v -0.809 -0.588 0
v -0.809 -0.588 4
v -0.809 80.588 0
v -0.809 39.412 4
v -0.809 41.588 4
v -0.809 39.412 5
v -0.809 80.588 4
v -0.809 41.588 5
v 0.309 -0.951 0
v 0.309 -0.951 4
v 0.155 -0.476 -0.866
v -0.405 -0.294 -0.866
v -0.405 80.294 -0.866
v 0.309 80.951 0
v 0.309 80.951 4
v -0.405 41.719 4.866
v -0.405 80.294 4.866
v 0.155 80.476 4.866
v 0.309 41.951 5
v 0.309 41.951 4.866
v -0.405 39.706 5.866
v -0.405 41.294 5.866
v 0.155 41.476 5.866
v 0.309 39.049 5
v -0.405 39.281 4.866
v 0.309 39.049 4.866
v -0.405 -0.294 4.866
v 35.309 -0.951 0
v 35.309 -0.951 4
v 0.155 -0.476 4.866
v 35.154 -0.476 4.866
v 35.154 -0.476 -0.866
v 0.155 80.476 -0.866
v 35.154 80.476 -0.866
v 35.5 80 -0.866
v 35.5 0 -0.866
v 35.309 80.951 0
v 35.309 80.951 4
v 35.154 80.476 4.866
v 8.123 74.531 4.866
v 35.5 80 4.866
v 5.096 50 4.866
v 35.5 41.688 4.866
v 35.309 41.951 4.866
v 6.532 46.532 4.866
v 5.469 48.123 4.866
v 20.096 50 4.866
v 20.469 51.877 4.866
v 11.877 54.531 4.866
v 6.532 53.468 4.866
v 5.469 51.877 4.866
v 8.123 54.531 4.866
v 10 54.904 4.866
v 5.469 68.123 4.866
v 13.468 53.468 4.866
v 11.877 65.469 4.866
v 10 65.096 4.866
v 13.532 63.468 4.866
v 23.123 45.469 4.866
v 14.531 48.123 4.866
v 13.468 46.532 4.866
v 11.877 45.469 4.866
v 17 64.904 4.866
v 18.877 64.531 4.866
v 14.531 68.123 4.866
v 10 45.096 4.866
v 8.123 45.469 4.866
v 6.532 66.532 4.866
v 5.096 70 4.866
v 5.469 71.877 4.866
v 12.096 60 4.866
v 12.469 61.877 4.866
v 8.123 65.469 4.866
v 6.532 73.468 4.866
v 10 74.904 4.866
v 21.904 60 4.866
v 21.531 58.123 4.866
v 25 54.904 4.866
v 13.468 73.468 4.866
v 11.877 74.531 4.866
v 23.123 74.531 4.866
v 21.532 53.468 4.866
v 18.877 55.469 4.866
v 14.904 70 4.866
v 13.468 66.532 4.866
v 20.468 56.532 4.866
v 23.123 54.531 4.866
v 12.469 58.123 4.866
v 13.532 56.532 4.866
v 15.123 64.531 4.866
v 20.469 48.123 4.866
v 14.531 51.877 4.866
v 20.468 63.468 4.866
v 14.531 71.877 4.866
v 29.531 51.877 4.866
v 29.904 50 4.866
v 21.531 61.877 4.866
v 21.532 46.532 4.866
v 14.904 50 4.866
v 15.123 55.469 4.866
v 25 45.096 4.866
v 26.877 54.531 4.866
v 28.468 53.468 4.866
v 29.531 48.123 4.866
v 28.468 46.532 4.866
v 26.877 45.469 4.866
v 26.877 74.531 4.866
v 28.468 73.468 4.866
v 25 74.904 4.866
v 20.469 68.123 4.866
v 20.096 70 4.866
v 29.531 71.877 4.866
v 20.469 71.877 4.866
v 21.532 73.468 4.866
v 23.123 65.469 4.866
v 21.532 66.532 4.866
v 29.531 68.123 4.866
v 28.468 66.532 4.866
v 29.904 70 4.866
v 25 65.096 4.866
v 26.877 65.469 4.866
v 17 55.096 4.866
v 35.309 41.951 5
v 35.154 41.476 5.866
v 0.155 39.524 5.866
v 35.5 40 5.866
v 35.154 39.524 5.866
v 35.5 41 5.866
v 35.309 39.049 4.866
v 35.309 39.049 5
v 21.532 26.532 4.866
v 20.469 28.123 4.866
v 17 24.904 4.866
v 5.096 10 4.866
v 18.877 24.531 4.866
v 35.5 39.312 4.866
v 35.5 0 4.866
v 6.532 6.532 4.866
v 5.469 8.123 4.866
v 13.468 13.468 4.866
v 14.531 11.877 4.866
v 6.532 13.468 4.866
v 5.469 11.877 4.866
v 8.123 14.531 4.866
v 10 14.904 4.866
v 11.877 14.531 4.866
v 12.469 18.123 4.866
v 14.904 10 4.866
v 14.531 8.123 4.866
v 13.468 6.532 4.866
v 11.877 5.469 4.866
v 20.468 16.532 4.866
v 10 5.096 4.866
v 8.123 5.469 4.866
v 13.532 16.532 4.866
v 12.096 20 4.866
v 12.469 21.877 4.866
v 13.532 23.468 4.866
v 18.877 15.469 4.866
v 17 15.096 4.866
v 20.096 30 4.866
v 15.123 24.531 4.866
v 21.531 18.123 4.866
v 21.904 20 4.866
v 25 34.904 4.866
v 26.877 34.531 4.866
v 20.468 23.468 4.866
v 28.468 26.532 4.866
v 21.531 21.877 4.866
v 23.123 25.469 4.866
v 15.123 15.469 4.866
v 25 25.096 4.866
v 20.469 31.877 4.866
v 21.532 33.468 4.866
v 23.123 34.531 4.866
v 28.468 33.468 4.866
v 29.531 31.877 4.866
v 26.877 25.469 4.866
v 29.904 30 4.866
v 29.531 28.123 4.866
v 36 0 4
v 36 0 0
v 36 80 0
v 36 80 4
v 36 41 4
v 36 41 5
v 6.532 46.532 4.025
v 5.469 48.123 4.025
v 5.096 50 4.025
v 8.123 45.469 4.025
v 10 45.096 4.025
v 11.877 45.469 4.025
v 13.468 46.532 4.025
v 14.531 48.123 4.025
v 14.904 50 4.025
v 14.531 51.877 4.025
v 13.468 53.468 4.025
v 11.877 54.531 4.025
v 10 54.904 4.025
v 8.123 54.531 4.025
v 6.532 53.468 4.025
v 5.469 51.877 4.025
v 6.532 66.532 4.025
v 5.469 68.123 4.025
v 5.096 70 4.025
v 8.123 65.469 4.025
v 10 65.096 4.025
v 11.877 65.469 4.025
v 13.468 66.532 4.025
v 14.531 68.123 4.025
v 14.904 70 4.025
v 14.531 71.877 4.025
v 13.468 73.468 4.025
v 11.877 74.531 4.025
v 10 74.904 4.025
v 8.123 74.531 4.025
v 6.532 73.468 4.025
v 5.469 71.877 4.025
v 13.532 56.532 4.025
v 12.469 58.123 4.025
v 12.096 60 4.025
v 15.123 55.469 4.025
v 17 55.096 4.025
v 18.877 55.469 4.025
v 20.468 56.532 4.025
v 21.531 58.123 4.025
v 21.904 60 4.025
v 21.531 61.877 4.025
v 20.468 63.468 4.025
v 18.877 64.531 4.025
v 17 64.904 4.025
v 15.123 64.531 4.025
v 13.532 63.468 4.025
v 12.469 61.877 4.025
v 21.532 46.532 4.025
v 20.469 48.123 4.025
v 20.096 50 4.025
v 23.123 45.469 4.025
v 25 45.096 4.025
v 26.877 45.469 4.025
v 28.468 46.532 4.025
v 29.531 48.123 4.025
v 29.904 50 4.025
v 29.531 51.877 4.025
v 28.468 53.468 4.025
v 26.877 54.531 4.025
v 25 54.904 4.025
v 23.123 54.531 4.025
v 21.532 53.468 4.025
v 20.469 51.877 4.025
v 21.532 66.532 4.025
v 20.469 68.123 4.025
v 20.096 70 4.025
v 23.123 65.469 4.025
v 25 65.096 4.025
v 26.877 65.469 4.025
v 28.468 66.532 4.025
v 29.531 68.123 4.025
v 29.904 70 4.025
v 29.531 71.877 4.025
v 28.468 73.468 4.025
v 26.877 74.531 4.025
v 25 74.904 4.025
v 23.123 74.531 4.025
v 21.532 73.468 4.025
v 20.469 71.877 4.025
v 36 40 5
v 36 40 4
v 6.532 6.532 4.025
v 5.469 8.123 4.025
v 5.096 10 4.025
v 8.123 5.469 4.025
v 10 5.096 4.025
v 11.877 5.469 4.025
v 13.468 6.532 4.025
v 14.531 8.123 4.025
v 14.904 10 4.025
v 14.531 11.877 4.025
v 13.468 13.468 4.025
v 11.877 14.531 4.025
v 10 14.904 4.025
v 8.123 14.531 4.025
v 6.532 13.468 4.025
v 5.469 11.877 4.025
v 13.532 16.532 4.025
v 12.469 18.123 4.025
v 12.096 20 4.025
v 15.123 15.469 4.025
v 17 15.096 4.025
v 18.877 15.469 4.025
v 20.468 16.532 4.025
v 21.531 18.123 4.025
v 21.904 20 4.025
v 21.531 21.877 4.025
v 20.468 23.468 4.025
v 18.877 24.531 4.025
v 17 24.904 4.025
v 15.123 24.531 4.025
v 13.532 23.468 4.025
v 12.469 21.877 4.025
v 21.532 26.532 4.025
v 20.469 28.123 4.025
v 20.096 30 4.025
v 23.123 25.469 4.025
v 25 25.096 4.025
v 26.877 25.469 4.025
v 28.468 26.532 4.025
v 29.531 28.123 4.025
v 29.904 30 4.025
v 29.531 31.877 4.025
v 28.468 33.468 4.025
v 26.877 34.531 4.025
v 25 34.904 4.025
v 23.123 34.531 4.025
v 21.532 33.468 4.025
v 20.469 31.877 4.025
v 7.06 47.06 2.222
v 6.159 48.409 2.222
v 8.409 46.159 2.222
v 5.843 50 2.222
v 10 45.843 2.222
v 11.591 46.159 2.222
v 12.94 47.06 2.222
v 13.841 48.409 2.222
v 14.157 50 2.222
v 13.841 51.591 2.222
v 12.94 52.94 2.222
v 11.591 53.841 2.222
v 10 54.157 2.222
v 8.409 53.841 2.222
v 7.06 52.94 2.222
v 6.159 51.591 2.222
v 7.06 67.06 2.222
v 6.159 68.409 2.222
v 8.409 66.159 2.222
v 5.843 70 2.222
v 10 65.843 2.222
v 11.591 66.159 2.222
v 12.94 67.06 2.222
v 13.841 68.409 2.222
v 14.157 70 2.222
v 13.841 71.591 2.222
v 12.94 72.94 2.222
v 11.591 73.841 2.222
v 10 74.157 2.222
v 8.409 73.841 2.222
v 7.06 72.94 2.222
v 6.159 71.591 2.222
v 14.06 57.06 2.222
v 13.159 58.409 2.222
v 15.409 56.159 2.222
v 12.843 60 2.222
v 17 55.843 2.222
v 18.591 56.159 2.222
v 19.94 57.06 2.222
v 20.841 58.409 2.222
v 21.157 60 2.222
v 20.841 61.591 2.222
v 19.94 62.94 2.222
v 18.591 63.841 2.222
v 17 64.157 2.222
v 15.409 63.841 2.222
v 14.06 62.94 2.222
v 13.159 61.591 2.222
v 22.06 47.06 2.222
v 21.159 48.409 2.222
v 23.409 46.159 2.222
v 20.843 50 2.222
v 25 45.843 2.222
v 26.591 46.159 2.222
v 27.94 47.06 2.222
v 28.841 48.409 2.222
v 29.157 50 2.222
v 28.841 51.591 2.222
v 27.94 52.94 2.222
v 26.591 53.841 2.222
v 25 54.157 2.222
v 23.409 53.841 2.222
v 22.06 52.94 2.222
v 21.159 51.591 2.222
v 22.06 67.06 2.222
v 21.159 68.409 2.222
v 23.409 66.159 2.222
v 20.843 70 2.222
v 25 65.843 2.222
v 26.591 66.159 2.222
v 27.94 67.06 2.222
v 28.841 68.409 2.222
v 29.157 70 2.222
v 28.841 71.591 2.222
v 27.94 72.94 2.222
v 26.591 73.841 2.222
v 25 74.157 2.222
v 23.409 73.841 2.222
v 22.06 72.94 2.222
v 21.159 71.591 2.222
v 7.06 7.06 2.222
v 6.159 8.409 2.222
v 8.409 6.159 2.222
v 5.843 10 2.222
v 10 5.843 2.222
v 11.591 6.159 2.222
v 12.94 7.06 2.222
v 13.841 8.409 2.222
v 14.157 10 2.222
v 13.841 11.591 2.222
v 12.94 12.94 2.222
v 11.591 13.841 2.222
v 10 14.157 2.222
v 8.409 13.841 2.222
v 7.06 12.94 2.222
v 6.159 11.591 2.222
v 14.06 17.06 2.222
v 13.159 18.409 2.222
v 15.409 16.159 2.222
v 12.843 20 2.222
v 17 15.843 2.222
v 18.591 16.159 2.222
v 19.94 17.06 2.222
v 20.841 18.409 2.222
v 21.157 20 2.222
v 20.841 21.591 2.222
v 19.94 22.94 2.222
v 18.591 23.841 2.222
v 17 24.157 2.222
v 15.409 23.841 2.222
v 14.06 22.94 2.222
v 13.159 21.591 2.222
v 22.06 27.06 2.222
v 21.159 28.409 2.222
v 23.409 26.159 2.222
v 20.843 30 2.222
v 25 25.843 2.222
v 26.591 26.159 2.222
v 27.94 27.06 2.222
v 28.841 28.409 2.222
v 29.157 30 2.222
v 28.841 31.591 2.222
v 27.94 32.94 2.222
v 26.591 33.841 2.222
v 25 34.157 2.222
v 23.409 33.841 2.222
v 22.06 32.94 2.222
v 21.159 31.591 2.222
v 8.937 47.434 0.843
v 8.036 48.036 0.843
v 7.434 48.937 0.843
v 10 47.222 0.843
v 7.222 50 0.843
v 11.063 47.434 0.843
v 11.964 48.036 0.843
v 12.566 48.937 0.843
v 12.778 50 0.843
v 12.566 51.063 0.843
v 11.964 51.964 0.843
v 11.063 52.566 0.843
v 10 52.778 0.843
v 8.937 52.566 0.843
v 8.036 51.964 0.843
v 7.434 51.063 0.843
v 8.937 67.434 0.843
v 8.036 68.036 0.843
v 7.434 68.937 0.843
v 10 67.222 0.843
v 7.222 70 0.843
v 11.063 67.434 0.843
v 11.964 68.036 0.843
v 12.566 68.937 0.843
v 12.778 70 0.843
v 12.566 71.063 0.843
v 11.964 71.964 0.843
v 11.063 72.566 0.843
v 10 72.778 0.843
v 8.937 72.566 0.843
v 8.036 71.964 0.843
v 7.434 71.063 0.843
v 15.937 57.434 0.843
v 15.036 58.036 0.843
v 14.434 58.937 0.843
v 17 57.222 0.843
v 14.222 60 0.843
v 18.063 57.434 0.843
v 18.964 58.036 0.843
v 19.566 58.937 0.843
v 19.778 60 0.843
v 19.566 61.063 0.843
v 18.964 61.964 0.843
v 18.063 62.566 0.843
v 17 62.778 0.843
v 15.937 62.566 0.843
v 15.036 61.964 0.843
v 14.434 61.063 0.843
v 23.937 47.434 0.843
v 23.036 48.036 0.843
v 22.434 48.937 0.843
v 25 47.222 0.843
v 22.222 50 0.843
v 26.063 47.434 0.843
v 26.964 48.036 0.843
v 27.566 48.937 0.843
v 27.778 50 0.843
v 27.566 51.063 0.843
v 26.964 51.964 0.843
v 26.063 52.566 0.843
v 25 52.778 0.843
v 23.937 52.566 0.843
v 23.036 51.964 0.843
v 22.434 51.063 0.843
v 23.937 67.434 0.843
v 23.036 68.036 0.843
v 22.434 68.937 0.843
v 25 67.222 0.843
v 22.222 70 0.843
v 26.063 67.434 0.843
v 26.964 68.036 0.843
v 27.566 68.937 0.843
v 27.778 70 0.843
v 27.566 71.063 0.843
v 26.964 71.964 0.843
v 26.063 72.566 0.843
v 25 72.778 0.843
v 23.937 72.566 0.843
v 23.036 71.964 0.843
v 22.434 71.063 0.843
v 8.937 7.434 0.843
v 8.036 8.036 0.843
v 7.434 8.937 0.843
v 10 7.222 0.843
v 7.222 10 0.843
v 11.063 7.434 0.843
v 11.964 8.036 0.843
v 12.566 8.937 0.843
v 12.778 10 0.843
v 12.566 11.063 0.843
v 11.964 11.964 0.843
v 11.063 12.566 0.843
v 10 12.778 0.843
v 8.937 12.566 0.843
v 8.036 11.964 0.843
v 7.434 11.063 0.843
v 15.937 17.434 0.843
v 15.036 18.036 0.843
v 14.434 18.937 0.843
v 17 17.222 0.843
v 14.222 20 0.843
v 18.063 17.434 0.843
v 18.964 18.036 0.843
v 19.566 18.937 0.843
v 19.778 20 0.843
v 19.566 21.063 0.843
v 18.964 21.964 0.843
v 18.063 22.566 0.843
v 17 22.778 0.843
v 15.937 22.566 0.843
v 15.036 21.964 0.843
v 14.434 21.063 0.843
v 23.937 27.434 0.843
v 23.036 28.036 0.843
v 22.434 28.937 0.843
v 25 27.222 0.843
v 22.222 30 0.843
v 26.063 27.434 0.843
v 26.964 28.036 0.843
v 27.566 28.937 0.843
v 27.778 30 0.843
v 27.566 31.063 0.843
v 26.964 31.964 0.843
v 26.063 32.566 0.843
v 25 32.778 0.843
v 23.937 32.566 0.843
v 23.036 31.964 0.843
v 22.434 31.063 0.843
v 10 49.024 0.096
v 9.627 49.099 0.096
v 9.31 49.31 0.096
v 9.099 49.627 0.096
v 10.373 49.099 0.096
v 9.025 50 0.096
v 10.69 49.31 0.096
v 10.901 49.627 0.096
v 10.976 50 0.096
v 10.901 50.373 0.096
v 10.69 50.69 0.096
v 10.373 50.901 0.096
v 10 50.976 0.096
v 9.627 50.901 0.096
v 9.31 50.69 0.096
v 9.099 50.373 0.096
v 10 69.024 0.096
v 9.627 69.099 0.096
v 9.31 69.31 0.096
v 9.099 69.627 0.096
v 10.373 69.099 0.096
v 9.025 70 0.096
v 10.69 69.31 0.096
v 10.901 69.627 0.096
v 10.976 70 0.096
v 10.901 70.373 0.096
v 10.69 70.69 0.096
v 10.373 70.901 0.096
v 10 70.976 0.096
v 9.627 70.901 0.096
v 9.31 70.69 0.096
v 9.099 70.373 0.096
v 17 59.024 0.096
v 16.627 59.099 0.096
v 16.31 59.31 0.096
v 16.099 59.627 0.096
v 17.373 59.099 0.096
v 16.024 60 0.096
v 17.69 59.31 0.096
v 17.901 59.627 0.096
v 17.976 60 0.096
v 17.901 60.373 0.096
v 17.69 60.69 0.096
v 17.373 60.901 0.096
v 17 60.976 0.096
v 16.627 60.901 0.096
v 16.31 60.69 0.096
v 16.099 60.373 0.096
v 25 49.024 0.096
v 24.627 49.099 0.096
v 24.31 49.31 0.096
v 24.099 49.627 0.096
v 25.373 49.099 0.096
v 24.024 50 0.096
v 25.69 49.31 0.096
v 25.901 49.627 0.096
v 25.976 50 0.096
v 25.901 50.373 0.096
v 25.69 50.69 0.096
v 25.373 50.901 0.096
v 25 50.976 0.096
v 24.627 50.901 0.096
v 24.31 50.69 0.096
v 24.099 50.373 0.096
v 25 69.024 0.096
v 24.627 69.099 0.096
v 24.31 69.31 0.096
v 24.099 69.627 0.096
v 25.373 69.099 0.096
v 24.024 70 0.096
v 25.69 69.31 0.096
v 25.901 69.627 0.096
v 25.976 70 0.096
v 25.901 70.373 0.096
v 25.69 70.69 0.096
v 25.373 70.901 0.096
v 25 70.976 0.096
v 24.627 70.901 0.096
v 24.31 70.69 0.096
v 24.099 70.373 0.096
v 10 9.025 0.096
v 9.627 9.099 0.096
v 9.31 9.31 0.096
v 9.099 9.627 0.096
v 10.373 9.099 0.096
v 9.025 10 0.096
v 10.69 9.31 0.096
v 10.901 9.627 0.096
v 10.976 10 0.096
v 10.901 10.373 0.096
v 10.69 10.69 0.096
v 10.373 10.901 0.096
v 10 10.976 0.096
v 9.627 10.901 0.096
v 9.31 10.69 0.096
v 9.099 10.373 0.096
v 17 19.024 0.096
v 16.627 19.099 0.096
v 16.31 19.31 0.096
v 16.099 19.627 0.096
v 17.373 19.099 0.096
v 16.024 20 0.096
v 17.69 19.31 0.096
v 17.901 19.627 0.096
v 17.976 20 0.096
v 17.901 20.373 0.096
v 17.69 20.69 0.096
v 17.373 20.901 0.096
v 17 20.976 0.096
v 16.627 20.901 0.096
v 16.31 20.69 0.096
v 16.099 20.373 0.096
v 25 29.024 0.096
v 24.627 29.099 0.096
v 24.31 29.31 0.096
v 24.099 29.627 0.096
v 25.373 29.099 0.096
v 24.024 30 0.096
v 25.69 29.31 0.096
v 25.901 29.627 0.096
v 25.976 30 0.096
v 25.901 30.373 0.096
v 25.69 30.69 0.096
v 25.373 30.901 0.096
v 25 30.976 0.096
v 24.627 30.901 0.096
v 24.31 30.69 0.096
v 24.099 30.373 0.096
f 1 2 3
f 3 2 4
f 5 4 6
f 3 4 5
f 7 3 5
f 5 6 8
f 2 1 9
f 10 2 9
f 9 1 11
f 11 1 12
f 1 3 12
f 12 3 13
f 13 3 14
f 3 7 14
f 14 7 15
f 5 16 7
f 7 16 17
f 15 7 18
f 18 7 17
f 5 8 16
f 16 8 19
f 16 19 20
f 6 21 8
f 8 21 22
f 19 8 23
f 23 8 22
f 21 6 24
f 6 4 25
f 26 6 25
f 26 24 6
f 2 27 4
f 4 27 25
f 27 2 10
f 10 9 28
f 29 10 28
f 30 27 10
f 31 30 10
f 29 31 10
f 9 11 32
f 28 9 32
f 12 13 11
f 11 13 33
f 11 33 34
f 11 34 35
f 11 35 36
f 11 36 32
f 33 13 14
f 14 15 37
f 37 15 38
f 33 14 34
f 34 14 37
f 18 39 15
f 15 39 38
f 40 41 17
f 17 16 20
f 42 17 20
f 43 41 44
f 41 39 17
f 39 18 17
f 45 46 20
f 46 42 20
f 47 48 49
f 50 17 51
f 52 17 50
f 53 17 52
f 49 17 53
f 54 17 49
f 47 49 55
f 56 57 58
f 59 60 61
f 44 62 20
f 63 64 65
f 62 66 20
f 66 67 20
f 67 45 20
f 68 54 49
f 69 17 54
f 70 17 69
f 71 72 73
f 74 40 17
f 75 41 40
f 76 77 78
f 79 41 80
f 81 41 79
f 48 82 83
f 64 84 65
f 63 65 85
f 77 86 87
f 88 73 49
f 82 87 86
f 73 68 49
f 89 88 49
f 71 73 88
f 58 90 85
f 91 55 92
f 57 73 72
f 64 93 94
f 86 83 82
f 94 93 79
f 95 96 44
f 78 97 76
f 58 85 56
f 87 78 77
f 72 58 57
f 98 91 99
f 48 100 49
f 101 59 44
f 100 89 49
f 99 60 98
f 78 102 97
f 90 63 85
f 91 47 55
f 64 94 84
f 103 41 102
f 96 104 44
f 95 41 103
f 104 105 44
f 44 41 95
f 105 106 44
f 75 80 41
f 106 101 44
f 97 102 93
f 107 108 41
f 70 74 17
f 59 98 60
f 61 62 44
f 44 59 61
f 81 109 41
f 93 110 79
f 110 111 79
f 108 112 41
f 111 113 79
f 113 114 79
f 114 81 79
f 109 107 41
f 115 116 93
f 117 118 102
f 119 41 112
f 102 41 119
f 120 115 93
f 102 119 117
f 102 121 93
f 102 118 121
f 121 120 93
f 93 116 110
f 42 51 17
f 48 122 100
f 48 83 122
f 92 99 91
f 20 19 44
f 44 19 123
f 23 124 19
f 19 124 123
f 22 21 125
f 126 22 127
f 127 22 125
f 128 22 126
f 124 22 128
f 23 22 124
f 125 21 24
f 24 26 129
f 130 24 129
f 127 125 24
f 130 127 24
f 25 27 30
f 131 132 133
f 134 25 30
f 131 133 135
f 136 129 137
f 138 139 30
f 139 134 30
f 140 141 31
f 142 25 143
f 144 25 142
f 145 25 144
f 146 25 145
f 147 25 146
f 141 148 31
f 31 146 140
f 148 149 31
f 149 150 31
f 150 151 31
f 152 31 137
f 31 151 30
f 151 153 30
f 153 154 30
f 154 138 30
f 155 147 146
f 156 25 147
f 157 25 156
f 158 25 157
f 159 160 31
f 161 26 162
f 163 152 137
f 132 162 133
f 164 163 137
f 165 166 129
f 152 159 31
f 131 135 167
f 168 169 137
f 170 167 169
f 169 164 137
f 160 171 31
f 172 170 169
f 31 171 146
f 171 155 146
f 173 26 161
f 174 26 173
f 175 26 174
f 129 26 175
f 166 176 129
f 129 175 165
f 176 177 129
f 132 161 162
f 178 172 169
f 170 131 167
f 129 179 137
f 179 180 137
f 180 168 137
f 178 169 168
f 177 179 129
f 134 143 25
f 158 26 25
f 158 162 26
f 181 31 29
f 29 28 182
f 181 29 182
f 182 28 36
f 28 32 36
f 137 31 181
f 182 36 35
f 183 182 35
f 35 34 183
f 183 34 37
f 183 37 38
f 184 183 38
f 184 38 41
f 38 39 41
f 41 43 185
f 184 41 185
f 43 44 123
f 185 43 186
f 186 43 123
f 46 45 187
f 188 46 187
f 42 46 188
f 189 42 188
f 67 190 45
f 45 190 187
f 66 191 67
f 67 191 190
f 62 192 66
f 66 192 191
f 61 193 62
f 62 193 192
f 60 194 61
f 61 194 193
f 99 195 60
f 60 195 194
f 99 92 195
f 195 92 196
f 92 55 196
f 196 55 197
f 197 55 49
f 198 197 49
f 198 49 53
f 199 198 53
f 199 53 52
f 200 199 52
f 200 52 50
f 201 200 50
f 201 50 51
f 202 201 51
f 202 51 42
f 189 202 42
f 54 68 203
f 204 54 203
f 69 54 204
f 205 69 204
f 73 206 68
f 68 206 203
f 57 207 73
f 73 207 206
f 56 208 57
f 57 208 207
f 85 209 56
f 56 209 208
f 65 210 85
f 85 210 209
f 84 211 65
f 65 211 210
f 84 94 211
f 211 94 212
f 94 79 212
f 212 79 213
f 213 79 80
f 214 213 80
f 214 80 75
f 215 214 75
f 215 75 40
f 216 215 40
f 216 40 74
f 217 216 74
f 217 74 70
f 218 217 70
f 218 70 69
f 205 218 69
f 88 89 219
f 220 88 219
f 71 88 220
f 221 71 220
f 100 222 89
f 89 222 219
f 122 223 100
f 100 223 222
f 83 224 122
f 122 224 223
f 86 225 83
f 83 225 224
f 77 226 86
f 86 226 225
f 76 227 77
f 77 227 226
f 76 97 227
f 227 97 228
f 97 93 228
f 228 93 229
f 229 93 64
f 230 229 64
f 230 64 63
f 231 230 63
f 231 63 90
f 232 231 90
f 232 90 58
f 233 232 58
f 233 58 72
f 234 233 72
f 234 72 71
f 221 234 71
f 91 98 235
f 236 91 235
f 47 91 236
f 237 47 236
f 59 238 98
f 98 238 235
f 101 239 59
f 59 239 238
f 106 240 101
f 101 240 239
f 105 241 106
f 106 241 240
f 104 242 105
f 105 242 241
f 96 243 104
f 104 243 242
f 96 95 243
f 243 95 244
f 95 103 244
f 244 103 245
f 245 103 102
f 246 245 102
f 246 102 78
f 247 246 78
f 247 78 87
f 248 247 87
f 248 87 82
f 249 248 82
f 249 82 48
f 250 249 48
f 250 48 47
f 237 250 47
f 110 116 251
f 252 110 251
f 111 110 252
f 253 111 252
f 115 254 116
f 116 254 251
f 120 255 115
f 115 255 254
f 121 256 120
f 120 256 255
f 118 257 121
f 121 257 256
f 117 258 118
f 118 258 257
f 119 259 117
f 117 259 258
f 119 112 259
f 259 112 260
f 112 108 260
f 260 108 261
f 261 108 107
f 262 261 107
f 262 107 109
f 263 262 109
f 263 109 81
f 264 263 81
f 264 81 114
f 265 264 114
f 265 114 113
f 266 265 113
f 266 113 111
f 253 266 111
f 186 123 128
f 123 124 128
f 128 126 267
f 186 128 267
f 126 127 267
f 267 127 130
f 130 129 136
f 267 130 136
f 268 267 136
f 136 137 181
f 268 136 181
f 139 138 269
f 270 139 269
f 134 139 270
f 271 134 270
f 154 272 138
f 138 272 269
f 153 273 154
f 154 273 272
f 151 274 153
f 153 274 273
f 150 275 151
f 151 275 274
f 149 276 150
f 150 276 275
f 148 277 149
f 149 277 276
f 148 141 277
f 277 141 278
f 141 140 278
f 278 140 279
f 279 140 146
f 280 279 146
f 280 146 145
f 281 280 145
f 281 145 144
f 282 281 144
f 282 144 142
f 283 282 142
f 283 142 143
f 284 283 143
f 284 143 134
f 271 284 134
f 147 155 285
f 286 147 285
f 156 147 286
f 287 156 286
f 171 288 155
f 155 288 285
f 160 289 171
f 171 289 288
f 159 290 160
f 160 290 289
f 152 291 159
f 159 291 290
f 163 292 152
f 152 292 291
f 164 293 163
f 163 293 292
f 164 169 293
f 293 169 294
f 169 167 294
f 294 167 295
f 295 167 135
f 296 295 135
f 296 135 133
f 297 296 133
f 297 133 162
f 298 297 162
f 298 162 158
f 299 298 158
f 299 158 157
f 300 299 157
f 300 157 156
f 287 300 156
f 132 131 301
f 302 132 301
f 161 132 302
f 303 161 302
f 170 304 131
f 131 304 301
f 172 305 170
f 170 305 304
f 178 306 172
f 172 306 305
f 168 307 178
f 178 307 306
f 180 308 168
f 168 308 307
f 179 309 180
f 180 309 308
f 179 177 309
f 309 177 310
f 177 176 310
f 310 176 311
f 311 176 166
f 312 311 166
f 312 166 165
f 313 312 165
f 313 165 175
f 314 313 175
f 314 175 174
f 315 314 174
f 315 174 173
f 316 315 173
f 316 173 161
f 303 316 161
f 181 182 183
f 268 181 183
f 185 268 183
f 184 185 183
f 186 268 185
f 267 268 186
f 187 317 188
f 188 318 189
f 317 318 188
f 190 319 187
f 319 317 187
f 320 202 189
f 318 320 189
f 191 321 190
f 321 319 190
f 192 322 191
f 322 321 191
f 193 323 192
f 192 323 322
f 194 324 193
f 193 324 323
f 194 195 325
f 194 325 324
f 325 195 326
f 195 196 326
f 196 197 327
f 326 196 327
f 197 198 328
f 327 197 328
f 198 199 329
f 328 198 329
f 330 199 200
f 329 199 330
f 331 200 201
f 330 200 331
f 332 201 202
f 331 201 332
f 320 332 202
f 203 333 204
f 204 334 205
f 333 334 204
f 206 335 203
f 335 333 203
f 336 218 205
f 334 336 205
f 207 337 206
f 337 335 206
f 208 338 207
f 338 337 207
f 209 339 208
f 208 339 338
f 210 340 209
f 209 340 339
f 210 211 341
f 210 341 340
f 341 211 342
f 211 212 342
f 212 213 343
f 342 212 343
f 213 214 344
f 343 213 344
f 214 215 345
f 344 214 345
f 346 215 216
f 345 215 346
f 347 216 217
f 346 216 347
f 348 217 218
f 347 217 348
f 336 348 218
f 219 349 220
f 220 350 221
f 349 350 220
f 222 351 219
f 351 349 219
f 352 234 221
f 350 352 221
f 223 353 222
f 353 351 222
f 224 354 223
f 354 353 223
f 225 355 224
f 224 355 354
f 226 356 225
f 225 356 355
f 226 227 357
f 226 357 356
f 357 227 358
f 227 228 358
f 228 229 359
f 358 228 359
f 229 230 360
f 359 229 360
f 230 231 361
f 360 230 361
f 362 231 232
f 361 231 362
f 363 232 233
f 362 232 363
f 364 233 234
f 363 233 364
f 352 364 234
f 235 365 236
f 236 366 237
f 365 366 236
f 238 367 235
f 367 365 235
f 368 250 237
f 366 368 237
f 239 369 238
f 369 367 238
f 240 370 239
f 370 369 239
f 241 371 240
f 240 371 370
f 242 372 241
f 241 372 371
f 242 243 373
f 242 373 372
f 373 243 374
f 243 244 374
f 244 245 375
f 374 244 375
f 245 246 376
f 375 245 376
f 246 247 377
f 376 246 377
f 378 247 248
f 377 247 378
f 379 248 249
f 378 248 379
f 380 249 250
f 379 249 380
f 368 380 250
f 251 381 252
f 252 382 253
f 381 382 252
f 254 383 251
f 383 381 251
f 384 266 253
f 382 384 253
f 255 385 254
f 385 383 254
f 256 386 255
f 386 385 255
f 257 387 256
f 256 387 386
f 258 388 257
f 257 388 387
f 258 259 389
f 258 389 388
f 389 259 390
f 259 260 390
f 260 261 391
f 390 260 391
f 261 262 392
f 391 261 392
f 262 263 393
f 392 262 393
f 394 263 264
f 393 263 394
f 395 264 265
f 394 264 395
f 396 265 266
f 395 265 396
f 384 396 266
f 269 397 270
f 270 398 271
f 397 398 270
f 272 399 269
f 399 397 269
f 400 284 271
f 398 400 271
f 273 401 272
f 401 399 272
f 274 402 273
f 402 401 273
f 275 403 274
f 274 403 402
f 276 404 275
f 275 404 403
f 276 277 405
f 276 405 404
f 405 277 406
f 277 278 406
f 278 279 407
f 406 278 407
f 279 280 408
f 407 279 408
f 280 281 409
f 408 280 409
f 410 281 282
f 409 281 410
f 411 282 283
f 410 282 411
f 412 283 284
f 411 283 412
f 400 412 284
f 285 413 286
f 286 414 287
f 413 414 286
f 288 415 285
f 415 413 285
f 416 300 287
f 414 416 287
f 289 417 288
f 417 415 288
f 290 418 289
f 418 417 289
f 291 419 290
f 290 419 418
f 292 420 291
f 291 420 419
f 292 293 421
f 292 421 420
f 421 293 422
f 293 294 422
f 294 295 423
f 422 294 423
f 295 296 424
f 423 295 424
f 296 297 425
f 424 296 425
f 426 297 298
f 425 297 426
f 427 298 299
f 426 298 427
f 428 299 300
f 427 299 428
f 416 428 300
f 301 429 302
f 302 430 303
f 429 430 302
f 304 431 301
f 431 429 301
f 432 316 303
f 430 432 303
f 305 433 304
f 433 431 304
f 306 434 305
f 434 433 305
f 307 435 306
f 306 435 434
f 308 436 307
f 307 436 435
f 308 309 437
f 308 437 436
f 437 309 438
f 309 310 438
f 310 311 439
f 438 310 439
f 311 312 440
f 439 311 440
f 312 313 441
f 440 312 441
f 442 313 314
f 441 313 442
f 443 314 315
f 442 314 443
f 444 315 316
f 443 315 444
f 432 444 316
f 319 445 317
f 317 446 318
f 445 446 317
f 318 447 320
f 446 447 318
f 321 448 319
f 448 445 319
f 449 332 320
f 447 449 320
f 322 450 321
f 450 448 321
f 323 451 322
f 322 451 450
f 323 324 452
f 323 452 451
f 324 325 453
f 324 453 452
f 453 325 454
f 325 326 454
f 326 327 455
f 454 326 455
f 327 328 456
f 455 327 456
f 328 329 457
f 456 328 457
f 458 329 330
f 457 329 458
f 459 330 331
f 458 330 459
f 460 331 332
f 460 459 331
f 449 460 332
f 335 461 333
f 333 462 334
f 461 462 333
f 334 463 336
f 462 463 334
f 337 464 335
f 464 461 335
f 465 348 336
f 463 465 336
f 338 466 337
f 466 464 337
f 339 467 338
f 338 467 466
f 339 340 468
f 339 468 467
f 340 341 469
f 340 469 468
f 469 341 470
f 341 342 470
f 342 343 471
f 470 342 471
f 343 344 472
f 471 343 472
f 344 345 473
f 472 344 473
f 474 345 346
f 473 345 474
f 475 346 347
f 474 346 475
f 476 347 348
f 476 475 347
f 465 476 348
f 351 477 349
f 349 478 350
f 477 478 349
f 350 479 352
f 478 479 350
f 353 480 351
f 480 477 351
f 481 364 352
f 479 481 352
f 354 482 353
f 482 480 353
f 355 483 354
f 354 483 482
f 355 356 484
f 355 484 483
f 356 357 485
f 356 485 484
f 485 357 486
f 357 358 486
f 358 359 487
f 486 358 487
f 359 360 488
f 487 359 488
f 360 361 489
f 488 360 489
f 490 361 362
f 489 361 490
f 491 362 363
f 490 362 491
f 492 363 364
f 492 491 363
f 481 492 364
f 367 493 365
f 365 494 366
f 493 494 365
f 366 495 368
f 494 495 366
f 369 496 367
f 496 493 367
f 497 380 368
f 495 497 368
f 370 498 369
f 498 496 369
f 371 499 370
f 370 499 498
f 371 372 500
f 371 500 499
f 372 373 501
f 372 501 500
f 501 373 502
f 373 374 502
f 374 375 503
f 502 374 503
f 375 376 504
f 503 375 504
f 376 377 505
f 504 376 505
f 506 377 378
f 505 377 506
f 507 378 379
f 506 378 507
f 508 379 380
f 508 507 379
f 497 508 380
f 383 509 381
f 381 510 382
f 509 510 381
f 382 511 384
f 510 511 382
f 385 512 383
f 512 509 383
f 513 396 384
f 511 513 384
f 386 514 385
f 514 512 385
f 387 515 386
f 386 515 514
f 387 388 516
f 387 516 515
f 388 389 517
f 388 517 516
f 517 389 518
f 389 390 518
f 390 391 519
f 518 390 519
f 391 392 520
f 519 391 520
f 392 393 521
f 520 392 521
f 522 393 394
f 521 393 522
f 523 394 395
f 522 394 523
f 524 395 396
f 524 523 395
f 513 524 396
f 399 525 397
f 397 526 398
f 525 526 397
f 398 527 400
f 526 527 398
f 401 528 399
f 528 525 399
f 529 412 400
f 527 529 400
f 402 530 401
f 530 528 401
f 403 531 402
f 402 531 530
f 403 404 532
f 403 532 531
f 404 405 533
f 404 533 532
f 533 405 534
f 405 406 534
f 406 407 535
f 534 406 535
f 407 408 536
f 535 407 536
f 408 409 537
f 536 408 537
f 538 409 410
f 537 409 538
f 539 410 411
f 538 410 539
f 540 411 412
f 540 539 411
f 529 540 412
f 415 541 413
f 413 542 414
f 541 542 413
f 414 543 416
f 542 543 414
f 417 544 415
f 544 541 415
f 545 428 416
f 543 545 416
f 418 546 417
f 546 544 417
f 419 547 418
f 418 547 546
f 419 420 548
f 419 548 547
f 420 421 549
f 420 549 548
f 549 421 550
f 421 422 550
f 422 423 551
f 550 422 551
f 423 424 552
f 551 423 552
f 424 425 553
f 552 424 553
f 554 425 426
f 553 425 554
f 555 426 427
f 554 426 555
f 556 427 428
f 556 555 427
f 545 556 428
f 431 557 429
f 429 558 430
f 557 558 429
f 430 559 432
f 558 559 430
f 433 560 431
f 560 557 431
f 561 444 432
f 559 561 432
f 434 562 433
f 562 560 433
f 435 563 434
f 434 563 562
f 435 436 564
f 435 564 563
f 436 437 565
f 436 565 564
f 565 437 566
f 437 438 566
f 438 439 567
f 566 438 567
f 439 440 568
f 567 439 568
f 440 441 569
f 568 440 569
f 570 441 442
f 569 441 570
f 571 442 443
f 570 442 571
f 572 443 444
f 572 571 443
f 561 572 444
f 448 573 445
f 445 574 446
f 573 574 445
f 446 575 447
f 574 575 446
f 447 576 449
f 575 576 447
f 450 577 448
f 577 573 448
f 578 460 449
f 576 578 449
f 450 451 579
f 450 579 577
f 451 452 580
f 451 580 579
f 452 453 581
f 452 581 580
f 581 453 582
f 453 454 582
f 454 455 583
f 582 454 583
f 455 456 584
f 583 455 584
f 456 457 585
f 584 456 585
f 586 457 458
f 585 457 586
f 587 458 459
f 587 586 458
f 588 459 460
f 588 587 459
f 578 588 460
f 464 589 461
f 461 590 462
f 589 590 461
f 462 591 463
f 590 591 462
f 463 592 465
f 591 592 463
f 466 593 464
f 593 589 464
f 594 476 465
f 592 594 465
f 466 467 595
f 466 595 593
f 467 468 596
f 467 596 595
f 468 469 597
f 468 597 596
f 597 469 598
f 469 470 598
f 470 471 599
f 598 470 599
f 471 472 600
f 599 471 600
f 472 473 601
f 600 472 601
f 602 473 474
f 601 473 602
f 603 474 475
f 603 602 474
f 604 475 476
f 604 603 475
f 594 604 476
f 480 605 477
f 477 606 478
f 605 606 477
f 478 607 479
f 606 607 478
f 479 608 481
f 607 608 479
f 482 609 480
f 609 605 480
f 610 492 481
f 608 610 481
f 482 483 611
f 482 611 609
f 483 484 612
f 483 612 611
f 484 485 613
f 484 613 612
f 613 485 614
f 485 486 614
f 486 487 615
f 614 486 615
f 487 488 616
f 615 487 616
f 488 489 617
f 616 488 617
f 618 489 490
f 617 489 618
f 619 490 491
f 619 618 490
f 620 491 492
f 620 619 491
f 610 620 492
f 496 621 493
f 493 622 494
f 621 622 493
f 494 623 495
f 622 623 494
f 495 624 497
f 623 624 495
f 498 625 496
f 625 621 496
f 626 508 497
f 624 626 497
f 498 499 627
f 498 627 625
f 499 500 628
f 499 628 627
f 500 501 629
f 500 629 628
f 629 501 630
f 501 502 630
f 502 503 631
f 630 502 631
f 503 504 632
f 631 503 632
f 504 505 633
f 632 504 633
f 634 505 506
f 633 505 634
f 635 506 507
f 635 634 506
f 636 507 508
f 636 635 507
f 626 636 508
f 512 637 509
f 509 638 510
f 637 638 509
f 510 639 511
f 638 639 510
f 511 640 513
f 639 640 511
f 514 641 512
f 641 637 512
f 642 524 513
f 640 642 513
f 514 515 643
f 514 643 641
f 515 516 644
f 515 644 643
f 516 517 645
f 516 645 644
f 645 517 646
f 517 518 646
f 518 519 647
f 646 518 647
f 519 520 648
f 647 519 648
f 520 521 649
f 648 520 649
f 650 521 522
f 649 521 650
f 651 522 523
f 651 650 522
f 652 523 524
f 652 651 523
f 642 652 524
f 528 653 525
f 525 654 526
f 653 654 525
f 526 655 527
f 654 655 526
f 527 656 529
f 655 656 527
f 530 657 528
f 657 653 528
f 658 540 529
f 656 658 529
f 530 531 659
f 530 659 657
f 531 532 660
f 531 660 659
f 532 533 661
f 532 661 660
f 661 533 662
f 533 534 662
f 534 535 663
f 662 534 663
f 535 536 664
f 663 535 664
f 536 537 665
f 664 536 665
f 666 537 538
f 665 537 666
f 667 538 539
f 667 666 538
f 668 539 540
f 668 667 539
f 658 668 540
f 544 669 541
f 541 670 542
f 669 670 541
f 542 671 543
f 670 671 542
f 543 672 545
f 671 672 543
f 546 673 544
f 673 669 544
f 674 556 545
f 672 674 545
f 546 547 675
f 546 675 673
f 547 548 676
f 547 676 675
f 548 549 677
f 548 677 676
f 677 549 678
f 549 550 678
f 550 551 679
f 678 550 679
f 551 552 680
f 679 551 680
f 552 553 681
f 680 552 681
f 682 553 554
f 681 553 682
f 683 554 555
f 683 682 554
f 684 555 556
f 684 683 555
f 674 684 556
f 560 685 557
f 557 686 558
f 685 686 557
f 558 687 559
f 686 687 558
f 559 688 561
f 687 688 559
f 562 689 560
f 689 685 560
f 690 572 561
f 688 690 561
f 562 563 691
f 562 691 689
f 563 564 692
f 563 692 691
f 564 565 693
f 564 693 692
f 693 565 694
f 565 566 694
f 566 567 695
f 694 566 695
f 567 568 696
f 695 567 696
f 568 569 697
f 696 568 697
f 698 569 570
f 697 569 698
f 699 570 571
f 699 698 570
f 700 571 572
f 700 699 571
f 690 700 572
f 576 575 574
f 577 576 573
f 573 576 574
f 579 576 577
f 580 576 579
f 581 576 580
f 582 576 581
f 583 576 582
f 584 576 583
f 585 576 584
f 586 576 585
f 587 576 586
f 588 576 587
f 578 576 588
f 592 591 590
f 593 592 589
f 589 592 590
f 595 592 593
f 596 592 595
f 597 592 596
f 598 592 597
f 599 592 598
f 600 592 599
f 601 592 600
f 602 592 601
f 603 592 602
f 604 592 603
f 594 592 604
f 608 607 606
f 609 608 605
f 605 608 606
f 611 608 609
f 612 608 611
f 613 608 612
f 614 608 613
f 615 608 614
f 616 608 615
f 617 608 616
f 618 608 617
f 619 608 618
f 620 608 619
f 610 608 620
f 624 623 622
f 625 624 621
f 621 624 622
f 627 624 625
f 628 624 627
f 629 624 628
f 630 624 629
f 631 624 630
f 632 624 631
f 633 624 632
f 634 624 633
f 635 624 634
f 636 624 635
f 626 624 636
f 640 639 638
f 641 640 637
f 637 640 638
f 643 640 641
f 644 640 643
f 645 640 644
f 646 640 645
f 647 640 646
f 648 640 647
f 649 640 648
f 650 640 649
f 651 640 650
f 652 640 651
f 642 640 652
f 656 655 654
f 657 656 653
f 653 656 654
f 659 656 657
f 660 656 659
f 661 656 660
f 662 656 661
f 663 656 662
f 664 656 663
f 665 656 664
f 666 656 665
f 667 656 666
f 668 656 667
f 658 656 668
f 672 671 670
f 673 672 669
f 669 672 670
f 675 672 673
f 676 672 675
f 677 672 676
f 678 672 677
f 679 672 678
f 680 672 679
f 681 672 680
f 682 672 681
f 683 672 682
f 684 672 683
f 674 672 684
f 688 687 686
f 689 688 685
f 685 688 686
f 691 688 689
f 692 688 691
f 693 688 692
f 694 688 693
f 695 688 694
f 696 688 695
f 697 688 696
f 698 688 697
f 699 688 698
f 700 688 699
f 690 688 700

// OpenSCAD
// Loguncov Maxim 13.12.13


//$fn=128;


translate([0,40,0])
minkowski()
{cube([35,1,5]);
sphere(1);
}

difference() {

//основа
minkowski()
{cube([35,80,4]);
sphere(1);
}

//отверстия
translate([10,10,5])sphere(5);
translate([25,30,5])sphere(5);
translate([17,20,5])sphere(5);

translate([10,70,5])sphere(5);
translate([25,50,5])sphere(5);
translate([25,70,5])sphere(5);
translate([10,50,5])sphere(5);
translate([17,60,5])sphere(5);
}
